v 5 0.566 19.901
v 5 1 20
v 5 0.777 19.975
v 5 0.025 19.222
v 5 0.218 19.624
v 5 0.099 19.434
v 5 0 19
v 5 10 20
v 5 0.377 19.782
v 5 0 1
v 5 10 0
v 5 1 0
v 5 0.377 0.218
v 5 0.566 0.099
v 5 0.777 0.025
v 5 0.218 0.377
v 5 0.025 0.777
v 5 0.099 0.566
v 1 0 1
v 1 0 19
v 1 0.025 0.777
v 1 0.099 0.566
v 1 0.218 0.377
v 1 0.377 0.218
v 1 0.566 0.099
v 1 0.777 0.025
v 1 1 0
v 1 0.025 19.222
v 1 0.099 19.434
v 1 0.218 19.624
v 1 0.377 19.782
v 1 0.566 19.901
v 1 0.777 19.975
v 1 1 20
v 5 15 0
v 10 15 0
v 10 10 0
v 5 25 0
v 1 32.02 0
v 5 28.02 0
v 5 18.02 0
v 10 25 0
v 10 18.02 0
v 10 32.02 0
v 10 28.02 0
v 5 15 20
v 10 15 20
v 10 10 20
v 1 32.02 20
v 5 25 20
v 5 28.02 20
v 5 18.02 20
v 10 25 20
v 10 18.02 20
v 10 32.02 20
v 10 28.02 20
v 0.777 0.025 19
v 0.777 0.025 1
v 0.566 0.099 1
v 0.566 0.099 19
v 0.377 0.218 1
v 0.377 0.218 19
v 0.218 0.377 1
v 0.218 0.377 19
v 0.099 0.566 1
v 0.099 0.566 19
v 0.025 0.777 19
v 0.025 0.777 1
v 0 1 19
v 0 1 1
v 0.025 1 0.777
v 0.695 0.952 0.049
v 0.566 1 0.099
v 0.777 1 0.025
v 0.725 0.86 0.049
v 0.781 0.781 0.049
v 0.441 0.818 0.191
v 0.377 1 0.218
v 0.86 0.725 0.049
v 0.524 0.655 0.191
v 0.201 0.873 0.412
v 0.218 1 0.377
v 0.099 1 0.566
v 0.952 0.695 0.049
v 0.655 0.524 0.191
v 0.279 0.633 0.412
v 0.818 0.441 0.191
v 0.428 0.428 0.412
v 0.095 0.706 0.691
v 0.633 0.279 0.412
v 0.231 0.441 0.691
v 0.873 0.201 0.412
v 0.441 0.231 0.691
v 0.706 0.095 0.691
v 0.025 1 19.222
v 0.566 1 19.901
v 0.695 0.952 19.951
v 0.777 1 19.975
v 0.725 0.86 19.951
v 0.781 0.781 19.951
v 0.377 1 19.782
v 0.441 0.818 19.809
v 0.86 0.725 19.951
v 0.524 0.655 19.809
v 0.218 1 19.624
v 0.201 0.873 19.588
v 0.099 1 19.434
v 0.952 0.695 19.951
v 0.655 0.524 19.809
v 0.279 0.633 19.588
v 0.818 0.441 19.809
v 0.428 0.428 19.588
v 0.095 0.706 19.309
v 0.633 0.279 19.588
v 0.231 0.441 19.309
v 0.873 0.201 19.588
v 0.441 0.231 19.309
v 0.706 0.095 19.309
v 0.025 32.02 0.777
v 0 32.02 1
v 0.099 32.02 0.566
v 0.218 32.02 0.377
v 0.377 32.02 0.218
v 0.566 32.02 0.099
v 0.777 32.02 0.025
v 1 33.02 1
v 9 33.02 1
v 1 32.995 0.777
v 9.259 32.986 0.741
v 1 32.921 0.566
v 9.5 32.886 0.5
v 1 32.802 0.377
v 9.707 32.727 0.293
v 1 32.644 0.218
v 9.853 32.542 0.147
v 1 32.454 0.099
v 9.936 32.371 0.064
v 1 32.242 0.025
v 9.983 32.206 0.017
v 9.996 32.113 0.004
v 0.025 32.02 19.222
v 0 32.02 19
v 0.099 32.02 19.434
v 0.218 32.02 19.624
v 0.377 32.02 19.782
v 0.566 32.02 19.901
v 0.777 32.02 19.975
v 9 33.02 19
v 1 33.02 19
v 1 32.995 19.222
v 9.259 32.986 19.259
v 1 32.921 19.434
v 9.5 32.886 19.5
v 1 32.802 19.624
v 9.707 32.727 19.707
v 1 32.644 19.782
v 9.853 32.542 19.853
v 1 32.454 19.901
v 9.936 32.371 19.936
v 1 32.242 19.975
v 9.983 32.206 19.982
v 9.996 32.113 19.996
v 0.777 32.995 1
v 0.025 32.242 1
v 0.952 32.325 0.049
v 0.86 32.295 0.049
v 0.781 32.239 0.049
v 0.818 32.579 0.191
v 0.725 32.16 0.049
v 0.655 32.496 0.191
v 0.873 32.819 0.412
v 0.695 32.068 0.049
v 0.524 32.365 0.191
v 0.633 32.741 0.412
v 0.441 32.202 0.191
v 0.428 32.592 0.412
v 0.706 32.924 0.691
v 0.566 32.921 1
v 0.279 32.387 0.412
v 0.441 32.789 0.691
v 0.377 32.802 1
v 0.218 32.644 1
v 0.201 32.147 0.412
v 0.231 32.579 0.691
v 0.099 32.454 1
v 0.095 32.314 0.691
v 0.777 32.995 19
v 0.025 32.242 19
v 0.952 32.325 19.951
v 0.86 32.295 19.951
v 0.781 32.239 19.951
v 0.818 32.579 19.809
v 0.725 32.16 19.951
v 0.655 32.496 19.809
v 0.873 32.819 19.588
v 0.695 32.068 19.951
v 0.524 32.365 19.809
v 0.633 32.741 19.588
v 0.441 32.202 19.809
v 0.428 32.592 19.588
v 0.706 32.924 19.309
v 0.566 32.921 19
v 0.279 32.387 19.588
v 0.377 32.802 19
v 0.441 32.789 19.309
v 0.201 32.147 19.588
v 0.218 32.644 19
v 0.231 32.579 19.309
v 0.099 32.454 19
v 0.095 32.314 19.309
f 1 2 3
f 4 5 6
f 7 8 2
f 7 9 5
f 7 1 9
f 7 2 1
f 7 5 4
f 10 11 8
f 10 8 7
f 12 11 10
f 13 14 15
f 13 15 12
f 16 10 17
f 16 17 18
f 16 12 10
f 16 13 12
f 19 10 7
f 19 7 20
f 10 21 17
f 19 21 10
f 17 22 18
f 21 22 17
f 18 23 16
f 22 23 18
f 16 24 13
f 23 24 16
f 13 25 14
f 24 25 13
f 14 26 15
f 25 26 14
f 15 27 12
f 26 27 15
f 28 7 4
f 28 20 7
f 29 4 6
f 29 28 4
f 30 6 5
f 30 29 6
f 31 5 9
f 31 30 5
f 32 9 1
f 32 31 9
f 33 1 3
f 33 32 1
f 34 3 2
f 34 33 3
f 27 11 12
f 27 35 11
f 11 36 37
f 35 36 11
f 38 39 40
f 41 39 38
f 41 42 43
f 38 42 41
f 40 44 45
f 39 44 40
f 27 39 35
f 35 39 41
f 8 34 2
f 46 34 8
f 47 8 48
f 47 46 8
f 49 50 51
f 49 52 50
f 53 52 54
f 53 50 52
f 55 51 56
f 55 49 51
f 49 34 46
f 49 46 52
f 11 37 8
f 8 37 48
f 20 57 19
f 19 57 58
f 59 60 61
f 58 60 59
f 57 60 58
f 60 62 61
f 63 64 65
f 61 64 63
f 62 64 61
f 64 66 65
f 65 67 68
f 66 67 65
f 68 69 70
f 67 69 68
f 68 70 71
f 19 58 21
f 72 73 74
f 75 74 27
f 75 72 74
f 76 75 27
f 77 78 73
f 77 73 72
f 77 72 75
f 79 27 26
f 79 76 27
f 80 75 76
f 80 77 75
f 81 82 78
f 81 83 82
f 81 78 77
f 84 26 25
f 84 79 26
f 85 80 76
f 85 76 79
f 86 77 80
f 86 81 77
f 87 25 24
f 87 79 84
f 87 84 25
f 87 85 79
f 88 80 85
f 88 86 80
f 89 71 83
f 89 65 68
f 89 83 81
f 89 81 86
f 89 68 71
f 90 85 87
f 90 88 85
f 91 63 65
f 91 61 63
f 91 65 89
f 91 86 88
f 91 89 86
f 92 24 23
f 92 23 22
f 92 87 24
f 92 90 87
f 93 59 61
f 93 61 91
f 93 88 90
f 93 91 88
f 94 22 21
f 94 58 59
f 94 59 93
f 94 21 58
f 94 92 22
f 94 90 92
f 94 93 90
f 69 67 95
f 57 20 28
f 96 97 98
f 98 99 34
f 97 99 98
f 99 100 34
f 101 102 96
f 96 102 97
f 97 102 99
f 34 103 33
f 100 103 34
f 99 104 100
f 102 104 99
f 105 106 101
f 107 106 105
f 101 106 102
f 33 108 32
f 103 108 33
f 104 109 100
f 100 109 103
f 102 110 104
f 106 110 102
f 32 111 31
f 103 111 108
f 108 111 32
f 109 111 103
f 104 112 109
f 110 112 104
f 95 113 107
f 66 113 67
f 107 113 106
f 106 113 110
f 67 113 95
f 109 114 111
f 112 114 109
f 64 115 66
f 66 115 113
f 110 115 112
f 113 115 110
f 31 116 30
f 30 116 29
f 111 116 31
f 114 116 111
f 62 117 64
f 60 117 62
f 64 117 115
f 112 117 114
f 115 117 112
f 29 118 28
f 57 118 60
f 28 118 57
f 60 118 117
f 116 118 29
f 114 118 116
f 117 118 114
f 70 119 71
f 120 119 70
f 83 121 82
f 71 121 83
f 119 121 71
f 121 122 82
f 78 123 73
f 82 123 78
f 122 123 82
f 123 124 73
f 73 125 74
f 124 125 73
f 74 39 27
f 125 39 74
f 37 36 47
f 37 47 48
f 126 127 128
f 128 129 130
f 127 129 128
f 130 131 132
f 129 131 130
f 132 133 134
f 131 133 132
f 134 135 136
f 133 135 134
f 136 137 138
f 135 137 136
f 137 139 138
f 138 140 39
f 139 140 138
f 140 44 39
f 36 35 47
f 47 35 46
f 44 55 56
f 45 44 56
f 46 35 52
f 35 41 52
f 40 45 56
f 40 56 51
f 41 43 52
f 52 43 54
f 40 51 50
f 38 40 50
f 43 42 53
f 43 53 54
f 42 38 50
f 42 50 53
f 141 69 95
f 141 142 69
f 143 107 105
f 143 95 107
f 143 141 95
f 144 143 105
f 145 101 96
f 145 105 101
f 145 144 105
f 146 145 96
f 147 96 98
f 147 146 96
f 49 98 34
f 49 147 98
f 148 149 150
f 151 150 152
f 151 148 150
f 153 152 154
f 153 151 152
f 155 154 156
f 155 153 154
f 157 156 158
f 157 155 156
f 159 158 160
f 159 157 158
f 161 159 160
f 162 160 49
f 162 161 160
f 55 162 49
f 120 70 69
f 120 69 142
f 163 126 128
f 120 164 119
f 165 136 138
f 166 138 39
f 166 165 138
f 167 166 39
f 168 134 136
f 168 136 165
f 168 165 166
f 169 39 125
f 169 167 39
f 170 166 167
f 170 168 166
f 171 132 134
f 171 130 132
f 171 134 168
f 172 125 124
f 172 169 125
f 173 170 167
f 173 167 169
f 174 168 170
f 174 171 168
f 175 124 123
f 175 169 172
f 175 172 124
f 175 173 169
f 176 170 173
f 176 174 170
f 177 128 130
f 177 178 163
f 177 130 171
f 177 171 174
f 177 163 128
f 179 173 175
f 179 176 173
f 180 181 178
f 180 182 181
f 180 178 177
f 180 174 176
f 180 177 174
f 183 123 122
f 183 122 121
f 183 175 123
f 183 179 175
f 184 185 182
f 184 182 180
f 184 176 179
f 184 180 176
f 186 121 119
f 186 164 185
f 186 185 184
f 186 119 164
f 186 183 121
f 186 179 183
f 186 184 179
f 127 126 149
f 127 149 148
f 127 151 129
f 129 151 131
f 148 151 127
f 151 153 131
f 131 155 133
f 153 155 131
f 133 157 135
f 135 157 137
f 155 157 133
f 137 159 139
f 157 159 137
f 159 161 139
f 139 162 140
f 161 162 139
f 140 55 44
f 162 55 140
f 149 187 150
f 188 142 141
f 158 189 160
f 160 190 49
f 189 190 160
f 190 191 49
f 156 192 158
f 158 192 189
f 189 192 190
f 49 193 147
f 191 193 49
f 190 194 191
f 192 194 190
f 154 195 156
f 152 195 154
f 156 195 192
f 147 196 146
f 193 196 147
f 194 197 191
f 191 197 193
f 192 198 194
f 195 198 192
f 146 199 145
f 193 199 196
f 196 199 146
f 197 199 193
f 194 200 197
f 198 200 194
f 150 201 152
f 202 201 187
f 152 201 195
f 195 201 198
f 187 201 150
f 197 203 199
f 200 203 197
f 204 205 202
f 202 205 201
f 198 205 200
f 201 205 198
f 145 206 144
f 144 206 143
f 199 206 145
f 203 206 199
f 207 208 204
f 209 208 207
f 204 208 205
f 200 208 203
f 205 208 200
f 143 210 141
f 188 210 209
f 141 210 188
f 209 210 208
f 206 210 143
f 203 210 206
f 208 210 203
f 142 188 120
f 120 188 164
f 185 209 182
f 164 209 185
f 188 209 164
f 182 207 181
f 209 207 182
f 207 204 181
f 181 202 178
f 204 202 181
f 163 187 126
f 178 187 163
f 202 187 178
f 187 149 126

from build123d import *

# Parameters (mm, degrees)
PAD_DEPTH = 20
FILLET_R  = 1


with BuildPart() as part:
    # Sketch → Pad (new body)
    with BuildSketch(Plane.XY):
        Polygon((0, 0), (0, 33.02), (10, 33.02), (10, 28.02), (5, 28.02), (5, 25), (10, 25), (10, 18.02), (5, 18.02), (5, 15), (10, 15), (10, 10), (5, 10), (5, 0), align=None)
    extrude(amount=PAD_DEPTH)

    # Fillet
    fillet_edges = [part.edges().sort_by_distance(p)[0] for p in [
        (0, 33.02, 10),
        (10, 33.02, 10),
        (5, 33.02, 0),
        (5, 33.02, 20),
        (0, 0, 10),
        (0, 16.51, 0),
        (0, 16.51, 20),
        (2.5, 0, 0),
        (2.5, 0, 20),
    ]]
    fillet(fillet_edges, radius=FILLET_R)


solid = part.part
